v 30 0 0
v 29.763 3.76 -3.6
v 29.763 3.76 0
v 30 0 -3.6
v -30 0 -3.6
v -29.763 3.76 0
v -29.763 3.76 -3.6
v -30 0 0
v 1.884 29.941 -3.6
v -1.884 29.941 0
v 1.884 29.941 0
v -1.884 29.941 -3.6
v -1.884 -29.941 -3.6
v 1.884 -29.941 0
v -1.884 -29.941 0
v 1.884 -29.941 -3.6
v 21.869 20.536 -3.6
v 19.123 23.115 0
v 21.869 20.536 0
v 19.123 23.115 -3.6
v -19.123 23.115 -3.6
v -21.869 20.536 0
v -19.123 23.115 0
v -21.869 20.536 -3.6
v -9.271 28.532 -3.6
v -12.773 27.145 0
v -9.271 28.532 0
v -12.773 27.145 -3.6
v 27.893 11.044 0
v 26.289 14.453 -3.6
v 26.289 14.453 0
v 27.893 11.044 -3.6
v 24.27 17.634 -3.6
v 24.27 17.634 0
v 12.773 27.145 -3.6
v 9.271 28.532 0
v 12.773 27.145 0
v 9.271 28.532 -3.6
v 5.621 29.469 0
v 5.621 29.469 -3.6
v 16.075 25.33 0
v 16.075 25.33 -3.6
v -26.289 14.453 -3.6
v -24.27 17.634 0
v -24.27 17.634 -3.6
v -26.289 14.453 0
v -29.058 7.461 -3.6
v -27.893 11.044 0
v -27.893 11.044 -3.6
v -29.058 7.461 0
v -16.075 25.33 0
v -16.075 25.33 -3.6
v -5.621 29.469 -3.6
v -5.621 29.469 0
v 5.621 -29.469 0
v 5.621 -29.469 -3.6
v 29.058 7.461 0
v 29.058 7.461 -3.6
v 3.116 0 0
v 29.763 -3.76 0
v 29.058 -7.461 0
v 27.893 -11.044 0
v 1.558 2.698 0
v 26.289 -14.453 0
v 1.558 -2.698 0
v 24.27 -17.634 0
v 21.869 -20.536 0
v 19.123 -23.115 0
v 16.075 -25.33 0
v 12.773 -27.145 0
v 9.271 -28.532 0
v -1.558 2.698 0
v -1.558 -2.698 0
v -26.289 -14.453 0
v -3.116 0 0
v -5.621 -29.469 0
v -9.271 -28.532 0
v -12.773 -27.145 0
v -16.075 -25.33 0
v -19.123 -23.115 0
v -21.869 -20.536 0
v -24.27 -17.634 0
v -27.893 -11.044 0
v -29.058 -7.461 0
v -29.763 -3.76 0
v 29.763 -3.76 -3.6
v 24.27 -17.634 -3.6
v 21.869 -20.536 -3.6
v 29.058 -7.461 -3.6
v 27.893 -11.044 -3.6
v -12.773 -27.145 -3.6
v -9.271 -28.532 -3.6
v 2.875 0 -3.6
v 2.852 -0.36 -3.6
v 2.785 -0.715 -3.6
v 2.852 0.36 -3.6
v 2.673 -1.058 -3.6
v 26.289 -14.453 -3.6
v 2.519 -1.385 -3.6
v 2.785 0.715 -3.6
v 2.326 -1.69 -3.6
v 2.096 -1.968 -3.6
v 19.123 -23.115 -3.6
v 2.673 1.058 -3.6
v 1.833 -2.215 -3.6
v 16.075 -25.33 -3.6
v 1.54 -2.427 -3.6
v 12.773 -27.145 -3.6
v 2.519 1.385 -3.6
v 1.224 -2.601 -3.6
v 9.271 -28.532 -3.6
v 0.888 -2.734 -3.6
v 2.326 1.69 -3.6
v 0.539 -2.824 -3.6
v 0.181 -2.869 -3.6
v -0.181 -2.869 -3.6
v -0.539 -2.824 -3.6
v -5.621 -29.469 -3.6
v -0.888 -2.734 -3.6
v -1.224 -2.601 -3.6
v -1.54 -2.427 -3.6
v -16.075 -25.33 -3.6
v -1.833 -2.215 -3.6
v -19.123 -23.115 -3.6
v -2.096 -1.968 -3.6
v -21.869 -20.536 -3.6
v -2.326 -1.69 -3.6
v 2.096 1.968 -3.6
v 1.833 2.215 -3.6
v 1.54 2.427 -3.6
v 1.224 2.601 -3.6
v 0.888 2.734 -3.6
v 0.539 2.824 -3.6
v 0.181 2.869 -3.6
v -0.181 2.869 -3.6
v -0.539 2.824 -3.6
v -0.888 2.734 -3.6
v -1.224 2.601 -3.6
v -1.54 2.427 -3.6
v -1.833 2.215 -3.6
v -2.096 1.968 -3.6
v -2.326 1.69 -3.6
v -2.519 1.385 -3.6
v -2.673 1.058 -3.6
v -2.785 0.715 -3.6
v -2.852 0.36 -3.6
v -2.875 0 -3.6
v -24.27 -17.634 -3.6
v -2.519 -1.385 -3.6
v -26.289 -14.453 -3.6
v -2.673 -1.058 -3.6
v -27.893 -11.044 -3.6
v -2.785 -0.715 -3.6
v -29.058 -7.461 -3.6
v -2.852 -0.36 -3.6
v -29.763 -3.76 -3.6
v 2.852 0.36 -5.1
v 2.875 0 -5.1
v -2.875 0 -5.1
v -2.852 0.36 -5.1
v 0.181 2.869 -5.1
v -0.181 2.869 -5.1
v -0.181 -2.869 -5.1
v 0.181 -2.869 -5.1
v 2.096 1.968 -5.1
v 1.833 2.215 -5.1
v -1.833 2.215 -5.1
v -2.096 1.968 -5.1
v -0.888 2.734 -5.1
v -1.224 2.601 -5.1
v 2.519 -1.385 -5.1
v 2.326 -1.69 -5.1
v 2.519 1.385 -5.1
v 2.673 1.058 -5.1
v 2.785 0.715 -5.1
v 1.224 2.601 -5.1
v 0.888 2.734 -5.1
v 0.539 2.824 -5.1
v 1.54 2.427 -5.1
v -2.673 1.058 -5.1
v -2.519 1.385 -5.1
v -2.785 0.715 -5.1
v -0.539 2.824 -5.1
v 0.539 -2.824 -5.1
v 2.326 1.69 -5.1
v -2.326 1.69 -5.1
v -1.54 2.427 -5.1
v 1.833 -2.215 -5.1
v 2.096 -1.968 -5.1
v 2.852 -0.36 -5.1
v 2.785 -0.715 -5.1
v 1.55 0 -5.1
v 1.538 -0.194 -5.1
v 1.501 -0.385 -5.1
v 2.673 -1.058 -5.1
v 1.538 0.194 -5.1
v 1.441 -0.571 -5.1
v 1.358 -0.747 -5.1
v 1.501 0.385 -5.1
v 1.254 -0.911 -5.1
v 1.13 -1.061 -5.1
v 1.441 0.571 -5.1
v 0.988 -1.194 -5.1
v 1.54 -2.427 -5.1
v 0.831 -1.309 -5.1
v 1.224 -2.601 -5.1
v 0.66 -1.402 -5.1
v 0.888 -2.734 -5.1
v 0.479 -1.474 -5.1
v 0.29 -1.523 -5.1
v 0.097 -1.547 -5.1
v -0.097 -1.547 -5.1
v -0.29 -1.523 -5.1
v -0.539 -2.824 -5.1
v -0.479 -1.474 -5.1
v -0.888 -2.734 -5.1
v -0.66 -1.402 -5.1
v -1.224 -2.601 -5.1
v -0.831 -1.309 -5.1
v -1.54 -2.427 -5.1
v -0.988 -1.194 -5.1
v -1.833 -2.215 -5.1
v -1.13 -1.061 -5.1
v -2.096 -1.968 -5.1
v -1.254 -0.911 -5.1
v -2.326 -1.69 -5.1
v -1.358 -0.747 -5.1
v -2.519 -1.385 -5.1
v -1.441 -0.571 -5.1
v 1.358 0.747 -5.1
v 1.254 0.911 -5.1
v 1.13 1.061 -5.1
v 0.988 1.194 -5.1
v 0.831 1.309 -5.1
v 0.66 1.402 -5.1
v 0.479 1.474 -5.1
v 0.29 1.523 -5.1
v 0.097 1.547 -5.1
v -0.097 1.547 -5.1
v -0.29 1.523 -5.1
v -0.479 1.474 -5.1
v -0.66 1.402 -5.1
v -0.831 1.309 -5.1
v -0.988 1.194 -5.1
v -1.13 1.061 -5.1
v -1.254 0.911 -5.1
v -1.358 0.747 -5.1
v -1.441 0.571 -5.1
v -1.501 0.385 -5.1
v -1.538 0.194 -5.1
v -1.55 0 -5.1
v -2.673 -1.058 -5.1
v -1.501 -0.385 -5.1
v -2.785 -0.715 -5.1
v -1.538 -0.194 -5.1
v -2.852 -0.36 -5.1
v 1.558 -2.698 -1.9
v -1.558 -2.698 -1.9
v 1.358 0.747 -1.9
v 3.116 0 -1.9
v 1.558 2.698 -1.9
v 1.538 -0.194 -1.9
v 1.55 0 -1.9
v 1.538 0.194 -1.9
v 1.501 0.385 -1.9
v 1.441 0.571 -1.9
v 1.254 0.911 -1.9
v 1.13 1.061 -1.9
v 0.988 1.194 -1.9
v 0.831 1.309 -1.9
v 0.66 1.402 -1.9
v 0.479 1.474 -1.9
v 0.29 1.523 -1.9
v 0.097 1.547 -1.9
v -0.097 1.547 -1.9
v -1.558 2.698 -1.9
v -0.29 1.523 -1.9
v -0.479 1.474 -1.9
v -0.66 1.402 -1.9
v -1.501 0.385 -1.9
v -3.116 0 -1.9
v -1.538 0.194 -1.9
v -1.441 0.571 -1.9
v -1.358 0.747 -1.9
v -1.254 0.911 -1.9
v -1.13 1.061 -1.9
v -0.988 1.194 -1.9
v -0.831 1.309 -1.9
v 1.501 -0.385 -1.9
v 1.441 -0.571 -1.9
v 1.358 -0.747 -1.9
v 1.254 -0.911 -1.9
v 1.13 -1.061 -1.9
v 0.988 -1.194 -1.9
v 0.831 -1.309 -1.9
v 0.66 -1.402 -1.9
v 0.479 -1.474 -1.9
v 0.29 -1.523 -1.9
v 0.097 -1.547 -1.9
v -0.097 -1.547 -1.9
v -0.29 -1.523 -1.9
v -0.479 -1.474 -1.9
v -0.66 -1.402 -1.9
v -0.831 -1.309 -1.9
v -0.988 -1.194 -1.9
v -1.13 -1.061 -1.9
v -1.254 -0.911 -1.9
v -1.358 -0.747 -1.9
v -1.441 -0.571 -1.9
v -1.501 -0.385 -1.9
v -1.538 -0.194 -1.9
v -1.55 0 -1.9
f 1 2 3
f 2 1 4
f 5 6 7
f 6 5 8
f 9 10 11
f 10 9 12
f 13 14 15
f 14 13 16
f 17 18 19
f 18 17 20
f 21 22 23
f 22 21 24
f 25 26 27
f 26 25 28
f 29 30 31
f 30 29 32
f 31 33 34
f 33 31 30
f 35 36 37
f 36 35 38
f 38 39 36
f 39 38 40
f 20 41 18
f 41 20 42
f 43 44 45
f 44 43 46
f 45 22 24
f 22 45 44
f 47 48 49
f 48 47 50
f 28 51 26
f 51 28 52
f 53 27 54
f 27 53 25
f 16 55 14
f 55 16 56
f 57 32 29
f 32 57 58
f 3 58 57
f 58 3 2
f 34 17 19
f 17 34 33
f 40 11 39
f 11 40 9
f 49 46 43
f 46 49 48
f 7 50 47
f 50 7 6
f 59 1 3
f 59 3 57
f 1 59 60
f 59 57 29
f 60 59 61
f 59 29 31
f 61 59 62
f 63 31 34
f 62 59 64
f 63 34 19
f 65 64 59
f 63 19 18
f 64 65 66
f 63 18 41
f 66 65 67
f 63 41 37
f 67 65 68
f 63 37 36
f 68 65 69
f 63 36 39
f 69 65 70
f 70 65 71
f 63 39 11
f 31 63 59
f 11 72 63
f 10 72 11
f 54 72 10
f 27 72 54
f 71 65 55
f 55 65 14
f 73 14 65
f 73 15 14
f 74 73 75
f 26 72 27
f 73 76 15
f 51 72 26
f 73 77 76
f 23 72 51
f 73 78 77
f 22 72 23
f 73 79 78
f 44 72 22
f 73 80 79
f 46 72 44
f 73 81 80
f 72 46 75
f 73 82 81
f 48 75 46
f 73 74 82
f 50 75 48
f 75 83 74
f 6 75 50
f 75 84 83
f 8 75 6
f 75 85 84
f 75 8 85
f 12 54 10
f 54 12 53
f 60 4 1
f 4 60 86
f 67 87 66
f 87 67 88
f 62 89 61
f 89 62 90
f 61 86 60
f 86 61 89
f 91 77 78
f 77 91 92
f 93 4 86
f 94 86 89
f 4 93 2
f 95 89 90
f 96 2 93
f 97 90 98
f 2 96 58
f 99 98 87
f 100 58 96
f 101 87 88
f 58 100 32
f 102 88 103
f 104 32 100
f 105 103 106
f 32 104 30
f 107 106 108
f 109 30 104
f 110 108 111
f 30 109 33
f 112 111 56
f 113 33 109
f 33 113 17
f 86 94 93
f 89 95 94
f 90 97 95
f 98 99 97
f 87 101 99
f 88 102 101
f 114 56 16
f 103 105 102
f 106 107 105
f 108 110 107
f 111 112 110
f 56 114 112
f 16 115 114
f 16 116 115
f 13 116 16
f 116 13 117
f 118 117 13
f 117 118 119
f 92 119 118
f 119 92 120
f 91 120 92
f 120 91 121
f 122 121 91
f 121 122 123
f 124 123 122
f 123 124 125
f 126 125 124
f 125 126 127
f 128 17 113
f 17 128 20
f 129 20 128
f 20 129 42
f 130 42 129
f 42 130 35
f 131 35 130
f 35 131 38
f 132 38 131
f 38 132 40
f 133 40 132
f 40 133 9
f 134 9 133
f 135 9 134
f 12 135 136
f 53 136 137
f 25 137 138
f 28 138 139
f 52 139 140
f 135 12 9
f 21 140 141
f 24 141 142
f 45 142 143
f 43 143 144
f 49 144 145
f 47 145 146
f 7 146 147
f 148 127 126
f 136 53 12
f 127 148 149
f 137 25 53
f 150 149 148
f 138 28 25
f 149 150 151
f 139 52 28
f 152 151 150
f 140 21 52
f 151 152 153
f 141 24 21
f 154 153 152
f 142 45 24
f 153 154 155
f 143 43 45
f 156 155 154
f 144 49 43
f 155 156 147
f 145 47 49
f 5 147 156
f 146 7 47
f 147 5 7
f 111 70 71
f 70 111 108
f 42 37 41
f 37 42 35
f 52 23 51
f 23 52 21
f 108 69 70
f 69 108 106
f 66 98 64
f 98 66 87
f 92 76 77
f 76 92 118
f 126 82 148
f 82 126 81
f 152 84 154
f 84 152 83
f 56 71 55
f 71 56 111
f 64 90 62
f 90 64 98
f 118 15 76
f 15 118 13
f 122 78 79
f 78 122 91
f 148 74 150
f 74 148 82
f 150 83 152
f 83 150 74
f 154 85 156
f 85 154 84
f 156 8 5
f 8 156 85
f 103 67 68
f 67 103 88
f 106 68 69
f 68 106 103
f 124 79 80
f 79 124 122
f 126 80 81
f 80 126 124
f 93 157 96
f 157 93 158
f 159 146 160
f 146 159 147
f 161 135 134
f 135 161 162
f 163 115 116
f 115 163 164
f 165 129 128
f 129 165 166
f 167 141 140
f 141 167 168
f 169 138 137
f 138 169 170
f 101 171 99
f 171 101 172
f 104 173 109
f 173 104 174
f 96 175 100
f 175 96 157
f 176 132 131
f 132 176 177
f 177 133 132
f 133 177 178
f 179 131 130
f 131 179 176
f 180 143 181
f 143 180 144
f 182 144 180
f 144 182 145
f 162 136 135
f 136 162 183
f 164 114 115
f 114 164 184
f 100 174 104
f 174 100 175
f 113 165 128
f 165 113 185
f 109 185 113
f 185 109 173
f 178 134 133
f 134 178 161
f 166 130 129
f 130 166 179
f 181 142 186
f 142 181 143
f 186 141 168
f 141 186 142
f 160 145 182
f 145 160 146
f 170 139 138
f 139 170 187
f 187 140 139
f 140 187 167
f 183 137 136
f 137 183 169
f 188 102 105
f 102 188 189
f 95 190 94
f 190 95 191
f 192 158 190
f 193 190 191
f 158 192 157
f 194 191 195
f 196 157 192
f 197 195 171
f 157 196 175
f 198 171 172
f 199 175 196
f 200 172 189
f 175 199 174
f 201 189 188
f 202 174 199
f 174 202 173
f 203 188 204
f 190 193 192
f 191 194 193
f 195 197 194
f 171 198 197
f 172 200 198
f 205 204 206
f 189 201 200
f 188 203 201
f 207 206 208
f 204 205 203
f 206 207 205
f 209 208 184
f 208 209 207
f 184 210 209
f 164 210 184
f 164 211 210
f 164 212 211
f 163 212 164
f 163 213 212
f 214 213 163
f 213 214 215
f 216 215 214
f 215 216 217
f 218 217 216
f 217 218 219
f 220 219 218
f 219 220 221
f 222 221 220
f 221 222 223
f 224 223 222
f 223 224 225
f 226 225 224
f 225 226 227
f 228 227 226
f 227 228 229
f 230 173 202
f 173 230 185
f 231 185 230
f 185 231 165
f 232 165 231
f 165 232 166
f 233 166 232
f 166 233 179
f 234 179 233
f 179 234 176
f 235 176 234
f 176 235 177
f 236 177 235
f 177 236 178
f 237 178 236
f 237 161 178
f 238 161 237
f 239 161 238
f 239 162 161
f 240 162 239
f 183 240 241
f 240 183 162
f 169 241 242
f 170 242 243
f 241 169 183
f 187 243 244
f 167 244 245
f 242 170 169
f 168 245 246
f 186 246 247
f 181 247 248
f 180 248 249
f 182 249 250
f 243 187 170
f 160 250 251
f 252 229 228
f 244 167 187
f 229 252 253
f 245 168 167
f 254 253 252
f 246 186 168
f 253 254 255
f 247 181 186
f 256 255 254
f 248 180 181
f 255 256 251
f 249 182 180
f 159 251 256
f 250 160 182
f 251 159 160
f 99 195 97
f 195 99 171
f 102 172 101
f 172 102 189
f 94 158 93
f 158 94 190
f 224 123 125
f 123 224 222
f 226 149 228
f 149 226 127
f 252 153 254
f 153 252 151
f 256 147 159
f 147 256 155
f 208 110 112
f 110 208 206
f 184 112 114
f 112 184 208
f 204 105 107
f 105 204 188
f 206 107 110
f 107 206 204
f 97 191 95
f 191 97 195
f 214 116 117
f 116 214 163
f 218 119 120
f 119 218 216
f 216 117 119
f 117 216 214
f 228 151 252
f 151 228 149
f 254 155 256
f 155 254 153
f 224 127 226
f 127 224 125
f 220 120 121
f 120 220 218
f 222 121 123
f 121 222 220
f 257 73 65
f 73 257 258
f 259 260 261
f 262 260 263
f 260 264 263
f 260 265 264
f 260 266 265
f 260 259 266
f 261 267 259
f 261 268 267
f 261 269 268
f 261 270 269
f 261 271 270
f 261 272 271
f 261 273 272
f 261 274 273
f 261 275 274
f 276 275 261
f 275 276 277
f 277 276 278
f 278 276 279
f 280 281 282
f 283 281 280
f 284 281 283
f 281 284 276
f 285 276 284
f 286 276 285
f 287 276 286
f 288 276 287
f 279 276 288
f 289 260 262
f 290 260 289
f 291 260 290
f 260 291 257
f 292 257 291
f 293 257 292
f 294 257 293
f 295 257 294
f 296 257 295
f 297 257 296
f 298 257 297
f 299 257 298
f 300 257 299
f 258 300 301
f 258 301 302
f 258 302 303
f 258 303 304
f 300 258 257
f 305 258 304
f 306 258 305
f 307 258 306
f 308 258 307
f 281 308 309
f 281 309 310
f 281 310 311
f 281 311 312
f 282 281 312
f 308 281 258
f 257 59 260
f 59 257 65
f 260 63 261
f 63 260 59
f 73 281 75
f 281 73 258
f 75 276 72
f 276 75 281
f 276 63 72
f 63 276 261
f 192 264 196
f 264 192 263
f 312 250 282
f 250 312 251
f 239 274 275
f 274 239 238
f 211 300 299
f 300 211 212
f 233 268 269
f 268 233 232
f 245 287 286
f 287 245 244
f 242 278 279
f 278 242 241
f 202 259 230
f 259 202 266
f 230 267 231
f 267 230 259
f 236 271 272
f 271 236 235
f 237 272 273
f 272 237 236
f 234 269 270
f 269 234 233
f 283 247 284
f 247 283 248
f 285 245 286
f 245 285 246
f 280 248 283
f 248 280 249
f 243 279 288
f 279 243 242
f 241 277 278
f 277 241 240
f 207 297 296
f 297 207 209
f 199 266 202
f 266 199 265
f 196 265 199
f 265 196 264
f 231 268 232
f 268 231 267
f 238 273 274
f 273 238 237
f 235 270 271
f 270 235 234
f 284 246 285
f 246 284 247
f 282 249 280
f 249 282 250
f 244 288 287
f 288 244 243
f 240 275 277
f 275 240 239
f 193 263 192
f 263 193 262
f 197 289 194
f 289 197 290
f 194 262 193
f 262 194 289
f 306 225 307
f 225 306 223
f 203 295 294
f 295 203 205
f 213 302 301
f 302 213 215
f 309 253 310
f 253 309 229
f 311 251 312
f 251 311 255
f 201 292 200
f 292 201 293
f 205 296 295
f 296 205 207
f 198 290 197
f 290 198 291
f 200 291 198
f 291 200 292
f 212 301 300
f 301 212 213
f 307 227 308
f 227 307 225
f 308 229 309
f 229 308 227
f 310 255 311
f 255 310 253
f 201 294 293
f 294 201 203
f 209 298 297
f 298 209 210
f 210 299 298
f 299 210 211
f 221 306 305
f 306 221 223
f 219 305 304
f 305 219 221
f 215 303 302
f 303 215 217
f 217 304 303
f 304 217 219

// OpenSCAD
$fn = 50;


difference() {
	union() {
		translate(v = [0, 0, -3.6000000000]) {
			cylinder(h = 3.6000000000, r = 30.0000000000);
		}
		translate(v = [0, 0, -5.1000000000]) {
			cylinder(h = 5.1000000000, r = 2.8750000000);
		}
	}
	union() {
		translate(v = [0, 0, 0]) {
			rotate(a = [0, 0, 0]) {
				difference() {
					union() {
						translate(v = [0, 0, -1.9000000000]) {
							linear_extrude(height = 1.9000000000) {
								polygon(points = [[3.1158000000, 0.0000000000], [1.5579000000, 2.6983619531], [-1.5579000000, 2.6983619531], [-3.1158000000, 0.0000000000], [-1.5579000000, -2.6983619531], [1.5579000000, -2.6983619531]]);
							}
						}
					}
					union();
				}
			}
		}
		#translate(v = [0, 0, -100.0000000000]) {
			cylinder(h = 200, r = 1.5500000000);
		}
	}
}
